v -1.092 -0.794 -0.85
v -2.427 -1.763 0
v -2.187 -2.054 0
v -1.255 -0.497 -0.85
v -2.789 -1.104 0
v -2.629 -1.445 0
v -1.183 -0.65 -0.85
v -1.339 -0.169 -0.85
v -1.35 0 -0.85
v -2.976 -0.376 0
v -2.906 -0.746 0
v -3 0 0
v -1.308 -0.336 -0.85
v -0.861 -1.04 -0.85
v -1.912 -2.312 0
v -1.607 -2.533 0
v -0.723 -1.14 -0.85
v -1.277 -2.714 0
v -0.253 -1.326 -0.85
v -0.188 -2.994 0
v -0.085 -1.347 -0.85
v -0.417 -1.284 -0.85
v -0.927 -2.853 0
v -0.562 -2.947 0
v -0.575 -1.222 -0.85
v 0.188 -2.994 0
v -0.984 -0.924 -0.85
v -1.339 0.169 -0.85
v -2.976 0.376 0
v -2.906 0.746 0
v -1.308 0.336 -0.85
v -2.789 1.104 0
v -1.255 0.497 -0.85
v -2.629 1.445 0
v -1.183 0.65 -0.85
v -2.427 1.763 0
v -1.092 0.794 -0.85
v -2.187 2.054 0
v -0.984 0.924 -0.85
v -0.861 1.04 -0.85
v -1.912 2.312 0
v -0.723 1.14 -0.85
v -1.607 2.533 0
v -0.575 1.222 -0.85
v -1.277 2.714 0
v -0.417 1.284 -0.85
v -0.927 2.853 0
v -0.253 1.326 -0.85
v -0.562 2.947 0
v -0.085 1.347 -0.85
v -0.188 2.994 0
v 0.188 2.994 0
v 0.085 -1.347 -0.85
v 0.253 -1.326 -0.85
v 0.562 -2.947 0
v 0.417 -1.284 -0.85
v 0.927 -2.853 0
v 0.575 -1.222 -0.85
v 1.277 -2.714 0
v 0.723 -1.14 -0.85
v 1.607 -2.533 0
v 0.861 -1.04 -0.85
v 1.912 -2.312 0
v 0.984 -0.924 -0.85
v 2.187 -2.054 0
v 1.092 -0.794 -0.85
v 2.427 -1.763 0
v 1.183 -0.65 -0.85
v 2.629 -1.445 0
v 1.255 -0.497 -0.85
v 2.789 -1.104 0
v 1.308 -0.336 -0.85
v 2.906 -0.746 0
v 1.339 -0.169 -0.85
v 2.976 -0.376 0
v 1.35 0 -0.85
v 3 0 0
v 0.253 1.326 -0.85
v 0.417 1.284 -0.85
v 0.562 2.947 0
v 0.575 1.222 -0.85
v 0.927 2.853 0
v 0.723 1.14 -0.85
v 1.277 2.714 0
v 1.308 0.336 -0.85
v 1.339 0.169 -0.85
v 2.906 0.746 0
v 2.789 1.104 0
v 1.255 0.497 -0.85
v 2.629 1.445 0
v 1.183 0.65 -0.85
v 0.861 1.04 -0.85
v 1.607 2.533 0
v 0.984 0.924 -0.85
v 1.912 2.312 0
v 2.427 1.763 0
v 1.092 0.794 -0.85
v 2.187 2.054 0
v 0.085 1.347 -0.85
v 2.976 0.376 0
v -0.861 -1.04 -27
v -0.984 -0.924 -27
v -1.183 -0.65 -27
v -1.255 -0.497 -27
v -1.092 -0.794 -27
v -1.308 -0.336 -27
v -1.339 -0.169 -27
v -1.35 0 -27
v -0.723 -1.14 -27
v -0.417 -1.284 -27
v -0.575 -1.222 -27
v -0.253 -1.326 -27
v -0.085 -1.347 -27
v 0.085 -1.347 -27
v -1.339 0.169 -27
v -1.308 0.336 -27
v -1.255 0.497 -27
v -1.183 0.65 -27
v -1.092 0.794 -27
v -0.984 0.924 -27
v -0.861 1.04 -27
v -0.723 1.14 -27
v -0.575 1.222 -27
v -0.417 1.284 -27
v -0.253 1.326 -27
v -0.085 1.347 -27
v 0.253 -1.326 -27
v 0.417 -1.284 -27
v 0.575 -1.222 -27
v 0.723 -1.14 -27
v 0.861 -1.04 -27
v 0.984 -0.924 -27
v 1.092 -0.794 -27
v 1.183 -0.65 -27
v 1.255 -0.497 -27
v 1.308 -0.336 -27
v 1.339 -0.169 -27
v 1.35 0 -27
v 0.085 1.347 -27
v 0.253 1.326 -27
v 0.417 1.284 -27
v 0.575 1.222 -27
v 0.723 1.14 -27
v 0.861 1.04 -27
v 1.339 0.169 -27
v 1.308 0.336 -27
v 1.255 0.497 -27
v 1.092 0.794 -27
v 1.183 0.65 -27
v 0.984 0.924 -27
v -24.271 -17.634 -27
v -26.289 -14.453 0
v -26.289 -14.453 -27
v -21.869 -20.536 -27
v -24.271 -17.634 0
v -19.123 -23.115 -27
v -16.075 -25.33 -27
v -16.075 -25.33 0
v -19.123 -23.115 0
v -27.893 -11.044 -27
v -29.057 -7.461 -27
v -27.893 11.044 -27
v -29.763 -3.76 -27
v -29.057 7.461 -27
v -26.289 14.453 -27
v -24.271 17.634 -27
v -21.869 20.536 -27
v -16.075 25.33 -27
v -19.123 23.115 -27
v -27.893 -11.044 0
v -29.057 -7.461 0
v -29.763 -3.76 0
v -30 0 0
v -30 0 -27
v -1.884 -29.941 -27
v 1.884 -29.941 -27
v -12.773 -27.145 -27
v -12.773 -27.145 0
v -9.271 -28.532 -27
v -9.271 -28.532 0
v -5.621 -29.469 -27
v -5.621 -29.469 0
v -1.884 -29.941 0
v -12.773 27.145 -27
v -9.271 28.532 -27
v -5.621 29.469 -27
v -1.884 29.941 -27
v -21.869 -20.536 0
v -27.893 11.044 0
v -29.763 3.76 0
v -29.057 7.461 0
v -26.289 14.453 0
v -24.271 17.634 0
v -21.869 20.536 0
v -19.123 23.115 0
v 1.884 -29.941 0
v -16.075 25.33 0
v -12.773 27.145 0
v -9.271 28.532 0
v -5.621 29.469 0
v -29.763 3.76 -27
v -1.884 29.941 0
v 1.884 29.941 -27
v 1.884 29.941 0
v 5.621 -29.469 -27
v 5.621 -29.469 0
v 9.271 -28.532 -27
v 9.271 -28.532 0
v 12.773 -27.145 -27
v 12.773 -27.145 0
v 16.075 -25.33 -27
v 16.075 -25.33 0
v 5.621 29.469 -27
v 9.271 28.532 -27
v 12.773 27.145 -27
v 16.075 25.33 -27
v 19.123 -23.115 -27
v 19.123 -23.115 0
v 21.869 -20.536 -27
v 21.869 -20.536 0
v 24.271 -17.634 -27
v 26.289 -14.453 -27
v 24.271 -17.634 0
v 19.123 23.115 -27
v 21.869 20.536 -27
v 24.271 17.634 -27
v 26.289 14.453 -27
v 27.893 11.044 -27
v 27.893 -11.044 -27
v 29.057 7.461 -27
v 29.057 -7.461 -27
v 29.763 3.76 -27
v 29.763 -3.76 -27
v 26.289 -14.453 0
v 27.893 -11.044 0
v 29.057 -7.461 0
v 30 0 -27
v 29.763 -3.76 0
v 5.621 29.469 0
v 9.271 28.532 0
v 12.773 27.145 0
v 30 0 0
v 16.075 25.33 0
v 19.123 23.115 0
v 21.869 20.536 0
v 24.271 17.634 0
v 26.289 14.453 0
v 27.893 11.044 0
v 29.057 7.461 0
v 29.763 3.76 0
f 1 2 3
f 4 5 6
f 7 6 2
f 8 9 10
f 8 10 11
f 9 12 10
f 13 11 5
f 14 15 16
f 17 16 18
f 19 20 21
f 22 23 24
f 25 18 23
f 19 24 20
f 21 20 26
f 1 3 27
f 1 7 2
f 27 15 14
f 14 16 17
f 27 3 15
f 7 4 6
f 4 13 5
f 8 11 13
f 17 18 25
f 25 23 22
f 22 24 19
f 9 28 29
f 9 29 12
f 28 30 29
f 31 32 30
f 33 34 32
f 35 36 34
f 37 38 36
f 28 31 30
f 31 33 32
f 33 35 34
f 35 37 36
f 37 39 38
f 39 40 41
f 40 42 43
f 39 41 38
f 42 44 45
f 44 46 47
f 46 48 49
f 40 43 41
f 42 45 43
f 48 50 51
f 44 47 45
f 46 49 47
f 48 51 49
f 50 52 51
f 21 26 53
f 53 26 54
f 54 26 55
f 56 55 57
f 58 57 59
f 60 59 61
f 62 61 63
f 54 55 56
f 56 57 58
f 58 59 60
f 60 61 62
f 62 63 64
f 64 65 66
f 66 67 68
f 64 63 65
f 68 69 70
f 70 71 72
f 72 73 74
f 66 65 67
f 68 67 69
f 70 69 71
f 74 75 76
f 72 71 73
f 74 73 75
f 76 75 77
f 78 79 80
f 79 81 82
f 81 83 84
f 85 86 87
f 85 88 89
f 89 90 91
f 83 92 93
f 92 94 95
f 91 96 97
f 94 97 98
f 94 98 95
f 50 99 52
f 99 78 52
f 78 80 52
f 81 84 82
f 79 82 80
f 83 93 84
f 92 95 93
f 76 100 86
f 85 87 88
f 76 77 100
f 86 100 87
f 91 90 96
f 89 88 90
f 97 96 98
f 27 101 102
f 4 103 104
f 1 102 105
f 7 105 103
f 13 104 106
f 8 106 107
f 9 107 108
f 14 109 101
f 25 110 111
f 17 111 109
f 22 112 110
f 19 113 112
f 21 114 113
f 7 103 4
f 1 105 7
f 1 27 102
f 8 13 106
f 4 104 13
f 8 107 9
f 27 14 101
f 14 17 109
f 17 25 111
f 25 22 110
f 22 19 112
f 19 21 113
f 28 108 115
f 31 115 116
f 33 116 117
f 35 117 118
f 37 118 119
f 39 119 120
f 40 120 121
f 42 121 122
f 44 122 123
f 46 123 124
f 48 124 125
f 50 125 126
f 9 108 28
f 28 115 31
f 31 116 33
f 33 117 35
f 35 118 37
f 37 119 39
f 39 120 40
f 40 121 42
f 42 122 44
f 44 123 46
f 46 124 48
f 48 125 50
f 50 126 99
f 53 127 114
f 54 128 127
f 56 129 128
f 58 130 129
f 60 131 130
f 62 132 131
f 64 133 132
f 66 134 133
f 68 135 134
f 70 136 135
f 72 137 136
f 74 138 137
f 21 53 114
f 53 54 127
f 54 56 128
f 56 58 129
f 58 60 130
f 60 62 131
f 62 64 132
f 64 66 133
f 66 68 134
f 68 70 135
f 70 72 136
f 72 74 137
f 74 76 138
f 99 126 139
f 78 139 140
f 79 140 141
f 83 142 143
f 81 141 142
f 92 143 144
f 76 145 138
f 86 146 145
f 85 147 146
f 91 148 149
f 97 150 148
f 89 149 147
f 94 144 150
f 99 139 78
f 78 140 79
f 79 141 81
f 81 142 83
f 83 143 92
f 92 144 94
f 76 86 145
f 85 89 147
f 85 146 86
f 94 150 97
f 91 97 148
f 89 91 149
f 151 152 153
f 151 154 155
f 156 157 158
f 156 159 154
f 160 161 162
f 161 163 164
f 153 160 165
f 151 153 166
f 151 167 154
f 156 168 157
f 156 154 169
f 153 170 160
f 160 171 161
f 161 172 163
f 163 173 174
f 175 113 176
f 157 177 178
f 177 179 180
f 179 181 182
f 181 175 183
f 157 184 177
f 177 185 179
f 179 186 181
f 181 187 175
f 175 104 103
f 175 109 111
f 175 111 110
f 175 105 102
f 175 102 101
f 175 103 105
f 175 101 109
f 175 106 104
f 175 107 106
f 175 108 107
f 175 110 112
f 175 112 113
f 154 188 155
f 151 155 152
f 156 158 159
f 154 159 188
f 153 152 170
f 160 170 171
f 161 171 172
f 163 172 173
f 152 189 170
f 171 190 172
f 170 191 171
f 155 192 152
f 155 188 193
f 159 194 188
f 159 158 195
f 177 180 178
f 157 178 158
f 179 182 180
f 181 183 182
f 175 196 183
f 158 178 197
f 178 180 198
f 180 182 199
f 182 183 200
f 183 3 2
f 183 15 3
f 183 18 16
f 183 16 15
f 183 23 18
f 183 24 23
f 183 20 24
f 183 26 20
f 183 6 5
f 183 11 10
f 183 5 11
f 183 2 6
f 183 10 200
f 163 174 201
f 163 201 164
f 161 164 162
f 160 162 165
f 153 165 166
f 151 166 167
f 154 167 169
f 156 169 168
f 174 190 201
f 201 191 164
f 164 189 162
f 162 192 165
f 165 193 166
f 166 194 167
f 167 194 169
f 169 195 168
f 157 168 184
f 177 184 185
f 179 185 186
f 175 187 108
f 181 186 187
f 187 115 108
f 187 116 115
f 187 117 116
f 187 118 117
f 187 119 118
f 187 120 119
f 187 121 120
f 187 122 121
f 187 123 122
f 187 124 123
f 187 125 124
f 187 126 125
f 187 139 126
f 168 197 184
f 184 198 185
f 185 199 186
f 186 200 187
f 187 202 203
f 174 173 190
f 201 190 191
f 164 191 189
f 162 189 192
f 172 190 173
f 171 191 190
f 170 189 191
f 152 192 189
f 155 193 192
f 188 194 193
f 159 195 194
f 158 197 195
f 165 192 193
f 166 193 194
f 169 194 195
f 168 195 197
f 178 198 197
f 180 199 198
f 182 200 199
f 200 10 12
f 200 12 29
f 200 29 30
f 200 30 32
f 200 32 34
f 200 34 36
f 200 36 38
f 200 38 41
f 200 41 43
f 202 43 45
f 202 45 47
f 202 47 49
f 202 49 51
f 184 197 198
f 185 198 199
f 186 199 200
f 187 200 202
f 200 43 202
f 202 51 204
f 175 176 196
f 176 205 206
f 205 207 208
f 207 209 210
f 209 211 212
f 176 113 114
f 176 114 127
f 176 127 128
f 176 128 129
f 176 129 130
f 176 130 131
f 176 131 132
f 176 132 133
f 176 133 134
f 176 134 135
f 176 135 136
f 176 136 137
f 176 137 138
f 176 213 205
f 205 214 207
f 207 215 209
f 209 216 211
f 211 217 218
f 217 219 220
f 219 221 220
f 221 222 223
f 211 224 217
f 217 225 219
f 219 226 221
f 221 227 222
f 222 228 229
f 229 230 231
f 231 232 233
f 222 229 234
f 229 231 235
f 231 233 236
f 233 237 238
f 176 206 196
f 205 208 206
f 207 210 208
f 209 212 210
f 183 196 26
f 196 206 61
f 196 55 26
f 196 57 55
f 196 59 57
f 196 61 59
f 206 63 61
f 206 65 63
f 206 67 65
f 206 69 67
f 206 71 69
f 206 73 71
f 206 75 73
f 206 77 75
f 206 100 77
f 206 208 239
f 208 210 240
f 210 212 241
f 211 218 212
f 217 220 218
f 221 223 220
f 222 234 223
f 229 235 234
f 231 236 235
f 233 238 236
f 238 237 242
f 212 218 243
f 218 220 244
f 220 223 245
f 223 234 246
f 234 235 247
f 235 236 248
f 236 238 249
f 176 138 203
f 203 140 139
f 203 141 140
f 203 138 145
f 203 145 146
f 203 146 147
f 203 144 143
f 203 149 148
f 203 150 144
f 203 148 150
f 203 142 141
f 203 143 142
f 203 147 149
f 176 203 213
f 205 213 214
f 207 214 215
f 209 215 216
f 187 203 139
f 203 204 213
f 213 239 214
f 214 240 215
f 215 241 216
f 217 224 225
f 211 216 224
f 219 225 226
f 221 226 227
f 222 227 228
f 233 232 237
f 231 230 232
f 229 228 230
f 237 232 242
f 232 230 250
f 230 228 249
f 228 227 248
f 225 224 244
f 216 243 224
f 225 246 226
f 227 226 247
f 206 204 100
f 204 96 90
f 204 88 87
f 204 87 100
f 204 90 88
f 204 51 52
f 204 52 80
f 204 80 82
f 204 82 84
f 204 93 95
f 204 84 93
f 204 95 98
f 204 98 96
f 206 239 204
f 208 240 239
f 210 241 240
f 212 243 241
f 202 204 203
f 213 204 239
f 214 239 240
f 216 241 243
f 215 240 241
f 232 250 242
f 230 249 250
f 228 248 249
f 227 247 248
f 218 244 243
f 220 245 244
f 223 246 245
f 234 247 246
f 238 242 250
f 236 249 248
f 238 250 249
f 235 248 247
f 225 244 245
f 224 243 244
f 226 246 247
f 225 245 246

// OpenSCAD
$fn = 50;


difference() {
	union() {
		translate(v = [0, 0, -27.0000000000]) {
			cylinder(h = 27, r = 30.0000000000);
		}
	}
	union() {
		translate(v = [0, 0, 0]) {
			rotate(a = [0, 0, 0]) {
				difference() {
					union() {
						translate(v = [0, 0, -30.0000000000]) {
							cylinder(h = 30, r = 1.0000000000);
						}
						translate(v = [0, 0, -0.8500000000]) {
							cylinder(h = 0.8500000000, r1 = 1.3500000000, r2 = 3.0000000000);
						}
						translate(v = [0, 0, -30.0000000000]) {
							cylinder(h = 30, r = 1.3500000000);
						}
						translate(v = [0, 0, -30.0000000000]) {
							cylinder(h = 30, r = 1.0000000000);
						}
					}
					union();
				}
			}
		}
	}
}
